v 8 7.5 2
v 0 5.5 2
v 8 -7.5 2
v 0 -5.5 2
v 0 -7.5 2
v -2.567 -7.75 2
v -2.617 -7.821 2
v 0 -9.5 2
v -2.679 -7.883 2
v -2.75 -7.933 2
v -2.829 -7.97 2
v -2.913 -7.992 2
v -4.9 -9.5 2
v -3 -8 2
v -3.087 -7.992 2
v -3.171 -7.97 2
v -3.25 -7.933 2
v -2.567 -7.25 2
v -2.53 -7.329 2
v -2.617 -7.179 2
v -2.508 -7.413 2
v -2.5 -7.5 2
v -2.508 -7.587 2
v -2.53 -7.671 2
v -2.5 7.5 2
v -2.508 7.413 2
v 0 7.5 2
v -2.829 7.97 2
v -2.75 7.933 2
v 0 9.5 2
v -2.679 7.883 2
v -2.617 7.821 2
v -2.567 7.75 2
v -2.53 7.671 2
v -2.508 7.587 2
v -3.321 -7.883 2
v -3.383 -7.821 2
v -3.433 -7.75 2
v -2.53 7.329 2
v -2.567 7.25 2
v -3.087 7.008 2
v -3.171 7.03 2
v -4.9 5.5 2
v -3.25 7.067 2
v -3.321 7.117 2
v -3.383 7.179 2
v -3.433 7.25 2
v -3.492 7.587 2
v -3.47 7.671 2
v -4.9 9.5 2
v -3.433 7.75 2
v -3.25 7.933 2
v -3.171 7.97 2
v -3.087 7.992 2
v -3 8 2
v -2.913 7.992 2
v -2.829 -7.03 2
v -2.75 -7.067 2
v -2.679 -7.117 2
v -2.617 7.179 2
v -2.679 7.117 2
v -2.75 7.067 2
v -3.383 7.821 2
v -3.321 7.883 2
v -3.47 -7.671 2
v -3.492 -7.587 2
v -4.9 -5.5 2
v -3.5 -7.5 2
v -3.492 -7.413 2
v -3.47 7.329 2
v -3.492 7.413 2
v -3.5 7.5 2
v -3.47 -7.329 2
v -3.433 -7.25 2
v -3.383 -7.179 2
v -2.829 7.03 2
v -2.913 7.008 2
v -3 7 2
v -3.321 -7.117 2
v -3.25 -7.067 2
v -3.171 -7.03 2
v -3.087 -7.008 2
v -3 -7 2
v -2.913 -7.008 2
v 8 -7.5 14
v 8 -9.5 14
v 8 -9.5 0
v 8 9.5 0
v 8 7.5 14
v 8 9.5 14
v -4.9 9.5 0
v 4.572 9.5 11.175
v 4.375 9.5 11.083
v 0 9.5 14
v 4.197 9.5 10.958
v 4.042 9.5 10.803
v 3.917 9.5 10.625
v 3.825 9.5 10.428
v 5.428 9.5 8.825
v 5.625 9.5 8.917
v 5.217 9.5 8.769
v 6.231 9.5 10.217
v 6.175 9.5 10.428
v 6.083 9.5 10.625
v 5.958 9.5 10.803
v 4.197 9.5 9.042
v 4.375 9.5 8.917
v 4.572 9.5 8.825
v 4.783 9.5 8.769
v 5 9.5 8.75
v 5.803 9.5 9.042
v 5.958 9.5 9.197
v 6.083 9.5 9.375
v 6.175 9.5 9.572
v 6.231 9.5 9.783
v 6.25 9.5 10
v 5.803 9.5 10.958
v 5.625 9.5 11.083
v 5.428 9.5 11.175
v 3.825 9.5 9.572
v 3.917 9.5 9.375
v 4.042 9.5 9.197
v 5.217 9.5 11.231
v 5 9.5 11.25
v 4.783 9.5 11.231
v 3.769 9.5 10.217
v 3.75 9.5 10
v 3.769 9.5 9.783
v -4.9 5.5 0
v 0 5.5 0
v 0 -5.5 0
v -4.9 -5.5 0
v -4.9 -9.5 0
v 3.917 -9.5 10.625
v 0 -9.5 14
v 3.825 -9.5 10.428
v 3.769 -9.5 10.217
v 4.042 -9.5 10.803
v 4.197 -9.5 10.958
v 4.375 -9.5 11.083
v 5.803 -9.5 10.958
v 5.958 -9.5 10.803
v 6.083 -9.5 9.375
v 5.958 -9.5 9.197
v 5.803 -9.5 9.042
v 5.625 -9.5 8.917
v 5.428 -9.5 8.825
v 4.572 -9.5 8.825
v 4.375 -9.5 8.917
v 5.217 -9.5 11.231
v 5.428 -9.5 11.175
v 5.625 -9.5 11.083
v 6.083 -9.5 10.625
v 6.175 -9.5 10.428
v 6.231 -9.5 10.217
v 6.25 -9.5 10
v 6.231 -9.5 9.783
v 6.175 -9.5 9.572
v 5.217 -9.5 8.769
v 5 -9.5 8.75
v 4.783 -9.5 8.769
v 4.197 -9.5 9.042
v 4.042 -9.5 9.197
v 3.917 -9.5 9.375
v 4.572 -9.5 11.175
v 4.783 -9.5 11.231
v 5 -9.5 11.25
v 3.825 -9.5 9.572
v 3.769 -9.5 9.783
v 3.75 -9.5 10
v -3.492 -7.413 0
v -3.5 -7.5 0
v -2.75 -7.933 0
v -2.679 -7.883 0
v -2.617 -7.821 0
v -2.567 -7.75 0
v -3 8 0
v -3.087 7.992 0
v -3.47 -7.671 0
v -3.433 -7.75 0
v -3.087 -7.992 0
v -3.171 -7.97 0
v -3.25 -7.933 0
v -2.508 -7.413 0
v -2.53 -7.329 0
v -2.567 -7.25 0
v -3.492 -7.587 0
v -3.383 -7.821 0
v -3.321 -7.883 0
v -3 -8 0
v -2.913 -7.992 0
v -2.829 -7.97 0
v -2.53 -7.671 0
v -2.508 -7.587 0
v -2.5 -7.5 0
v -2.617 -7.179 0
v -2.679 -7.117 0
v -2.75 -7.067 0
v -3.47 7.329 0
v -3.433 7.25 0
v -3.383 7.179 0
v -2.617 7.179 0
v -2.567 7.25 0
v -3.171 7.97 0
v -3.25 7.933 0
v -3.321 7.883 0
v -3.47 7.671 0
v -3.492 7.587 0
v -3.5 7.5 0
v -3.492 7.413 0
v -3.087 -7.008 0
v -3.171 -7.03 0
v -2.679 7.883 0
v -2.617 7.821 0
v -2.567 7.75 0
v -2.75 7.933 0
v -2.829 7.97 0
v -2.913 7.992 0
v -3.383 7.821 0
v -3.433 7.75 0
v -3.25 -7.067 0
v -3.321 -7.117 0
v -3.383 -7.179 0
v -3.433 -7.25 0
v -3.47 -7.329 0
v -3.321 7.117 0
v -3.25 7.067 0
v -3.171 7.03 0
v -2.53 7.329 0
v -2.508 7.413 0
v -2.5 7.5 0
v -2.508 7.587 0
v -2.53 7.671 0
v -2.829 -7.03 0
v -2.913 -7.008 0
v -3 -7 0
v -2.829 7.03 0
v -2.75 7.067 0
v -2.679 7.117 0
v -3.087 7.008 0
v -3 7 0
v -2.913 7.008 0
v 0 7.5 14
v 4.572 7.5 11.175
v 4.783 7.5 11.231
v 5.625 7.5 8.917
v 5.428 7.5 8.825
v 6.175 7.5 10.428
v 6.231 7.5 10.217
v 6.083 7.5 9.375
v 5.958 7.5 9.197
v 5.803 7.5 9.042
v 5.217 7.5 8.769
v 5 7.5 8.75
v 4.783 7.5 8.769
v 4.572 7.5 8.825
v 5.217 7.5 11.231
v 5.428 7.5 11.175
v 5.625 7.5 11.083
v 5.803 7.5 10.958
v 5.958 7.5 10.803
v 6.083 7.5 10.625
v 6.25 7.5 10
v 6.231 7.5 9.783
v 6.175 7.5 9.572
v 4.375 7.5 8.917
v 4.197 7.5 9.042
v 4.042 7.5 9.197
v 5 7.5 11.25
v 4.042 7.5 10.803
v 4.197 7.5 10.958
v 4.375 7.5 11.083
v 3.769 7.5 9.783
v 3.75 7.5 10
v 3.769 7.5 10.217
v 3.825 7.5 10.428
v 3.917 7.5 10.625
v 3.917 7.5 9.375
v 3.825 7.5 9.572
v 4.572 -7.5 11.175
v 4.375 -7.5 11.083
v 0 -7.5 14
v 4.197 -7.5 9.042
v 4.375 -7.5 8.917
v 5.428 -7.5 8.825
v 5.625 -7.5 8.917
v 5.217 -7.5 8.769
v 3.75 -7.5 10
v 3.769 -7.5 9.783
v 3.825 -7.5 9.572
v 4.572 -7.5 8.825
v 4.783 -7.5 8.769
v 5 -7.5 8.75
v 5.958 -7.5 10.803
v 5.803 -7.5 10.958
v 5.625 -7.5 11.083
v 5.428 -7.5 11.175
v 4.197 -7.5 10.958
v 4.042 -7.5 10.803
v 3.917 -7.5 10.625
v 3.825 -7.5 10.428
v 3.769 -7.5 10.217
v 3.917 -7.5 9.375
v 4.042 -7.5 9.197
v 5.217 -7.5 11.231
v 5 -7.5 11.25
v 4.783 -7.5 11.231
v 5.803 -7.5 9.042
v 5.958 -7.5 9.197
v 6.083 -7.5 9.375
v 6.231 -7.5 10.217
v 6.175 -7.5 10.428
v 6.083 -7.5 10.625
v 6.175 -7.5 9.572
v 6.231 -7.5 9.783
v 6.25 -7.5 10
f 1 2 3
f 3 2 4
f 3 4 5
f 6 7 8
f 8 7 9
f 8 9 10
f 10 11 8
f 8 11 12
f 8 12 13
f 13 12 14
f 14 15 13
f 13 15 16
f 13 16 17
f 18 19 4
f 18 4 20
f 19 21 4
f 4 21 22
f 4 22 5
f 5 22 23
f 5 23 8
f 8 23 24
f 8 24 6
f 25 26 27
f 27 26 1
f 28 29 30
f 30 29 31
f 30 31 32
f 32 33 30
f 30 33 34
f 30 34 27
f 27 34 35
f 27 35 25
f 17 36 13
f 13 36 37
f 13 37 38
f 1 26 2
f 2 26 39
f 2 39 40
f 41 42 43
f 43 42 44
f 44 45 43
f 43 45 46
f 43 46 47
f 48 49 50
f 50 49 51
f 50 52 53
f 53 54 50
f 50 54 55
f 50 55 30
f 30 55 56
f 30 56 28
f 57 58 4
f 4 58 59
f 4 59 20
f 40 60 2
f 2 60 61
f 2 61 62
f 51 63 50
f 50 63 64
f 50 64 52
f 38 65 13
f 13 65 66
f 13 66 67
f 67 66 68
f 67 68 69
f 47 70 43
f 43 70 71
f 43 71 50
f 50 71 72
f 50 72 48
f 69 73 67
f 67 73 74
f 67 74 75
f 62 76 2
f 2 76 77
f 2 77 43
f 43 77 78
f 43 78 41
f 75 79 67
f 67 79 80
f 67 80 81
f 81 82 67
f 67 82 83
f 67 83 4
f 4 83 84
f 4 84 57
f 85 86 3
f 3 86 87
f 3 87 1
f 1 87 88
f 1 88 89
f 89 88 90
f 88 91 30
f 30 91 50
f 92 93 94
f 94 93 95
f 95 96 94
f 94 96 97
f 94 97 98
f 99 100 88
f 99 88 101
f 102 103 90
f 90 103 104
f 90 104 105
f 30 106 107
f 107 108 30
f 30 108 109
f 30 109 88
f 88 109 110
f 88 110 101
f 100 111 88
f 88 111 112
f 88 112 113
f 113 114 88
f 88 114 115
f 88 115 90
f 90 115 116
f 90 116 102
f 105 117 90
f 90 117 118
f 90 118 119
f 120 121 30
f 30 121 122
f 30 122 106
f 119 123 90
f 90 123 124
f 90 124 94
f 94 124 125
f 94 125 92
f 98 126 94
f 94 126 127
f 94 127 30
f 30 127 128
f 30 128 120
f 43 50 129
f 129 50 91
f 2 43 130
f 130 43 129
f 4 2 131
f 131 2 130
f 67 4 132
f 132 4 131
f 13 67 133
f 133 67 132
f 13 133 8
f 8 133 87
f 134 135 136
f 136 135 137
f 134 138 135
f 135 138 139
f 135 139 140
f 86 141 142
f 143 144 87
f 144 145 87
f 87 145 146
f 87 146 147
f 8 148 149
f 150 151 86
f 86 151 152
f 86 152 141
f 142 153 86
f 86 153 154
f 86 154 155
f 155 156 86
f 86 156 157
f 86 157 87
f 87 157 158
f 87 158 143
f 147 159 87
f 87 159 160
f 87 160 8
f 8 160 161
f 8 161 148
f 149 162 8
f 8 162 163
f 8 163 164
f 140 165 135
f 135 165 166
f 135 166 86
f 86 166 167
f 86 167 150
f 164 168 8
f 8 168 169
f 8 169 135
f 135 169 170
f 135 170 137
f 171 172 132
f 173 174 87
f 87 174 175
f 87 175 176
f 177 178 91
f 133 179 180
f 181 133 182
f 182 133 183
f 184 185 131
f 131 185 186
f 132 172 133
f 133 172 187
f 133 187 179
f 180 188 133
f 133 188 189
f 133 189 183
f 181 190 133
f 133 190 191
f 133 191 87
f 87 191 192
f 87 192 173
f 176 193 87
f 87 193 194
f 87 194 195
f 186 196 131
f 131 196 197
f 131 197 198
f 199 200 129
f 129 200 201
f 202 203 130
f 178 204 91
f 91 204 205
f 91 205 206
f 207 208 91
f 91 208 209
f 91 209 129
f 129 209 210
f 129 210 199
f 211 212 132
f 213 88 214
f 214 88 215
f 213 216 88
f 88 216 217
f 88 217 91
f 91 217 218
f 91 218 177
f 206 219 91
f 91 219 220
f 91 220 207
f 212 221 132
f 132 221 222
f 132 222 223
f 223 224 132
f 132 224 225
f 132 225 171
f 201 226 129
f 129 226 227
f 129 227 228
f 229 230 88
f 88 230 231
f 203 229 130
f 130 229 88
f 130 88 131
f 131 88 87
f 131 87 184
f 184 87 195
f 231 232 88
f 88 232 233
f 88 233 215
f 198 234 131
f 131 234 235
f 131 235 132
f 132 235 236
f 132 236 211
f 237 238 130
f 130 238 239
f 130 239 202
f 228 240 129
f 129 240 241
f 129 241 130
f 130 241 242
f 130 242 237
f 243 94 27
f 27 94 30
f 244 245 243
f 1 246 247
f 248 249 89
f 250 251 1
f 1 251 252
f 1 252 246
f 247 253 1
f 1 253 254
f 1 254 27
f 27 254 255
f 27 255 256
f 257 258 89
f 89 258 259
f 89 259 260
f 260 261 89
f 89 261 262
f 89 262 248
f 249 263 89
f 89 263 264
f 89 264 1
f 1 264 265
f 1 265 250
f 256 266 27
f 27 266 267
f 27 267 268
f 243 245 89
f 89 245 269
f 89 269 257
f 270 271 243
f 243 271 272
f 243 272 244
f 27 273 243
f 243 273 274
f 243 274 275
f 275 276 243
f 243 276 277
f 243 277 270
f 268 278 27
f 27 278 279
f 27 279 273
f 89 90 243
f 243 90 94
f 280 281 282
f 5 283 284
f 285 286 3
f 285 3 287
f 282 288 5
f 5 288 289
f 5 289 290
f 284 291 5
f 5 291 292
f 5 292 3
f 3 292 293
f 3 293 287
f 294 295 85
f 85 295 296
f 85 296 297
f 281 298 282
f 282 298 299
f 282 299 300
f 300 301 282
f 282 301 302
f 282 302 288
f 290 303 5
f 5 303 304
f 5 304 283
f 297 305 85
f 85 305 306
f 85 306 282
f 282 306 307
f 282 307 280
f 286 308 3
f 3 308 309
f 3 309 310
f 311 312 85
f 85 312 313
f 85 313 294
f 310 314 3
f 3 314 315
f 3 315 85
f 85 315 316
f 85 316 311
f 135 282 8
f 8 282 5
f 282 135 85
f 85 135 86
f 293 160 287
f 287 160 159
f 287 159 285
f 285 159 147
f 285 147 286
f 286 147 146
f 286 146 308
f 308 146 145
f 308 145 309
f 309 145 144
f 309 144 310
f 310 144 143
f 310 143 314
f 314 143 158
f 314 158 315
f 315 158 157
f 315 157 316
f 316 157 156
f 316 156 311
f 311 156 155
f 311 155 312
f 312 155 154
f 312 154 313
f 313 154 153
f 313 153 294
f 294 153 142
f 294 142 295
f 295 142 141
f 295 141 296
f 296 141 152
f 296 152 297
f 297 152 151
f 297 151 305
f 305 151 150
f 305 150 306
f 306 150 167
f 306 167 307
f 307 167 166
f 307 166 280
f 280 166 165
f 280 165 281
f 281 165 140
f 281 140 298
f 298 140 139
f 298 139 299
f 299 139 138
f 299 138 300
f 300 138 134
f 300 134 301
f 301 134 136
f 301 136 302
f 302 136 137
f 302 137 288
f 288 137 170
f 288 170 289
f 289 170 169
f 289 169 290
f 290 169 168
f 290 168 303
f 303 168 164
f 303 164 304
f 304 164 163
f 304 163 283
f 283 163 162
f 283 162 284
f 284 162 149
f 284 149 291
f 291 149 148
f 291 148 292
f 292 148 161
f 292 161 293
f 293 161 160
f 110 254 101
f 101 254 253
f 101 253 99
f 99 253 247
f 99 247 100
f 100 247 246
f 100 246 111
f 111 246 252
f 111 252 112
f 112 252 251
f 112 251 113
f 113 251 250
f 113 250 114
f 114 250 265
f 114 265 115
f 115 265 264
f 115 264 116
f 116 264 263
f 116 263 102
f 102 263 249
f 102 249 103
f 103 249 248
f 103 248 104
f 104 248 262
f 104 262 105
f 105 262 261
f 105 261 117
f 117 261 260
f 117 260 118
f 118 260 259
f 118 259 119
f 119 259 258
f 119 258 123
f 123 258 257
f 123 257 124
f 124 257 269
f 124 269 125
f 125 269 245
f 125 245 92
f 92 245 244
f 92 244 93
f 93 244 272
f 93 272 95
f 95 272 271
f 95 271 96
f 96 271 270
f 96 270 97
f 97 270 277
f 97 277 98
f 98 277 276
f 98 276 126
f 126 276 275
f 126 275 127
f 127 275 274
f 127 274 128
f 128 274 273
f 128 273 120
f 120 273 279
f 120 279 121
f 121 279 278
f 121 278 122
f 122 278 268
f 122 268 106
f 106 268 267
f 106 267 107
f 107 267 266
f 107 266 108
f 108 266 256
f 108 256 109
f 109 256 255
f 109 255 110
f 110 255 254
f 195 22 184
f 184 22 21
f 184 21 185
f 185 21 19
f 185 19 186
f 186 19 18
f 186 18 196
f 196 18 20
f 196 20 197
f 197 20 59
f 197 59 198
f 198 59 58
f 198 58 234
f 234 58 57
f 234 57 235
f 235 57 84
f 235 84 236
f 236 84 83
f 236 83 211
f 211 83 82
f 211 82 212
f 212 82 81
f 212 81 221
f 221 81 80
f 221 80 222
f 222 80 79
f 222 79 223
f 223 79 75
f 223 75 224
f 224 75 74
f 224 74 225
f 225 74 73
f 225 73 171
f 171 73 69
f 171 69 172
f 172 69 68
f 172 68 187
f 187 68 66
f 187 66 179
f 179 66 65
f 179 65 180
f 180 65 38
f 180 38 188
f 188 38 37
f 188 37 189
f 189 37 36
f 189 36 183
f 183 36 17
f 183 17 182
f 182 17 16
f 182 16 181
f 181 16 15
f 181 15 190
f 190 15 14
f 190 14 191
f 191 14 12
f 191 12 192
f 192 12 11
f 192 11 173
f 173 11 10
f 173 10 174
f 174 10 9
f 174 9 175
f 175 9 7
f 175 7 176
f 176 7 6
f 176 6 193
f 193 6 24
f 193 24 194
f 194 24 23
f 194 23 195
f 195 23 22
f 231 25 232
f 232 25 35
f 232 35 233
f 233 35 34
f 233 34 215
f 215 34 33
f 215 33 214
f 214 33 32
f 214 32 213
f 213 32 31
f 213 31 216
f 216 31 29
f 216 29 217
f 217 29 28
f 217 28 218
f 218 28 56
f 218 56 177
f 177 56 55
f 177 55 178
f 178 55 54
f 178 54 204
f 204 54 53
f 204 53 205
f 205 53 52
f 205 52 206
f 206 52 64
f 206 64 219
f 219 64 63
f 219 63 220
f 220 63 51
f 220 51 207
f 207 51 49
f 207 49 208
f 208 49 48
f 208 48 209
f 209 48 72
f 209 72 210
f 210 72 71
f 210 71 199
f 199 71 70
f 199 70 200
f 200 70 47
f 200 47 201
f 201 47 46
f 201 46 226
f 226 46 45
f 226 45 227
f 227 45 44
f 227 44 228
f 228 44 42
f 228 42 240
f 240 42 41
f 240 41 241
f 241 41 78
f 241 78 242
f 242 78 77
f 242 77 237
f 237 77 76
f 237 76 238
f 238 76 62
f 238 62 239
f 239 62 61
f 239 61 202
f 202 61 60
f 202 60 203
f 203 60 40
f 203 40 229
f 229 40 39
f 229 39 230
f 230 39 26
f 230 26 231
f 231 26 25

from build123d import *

# Parameters (mm, degrees)
EXTRUDE_1_DEPTH     = 2
SKETCH_3_W          = 8
SKETCH_3_H          = 2
EXTRUDE_2_DEPTH     = 12
SKETCH_11_R         = 1.25
CUT_EXTRUDE_3_DEPTH = 25.919871589
CUT_EXTRUDE_4_REACH = 19.27
SKETCH_10_R         = 0.5


with BuildPart() as part:
    # 草图2 → 凸台-拉伸1 (new body)
    with BuildSketch(Plane.XY):
        Polygon((-4.9, -9.5), (8, -9.5), (8, 9.5), (-4.9, 9.5), (-4.9, 5.5), (0, 5.5), (0, -5.5), (-4.9, -5.5), align=None)
    extrude(amount=EXTRUDE_1_DEPTH)

    # 草图3 → 凸台-拉伸2 (add)
    with BuildSketch(Plane.XY.offset(2)):
        with Locations((4, 8.5)):
            Rectangle(SKETCH_3_W, SKETCH_3_H)
        with Locations((4, -8.5)):
            Rectangle(SKETCH_3_W, SKETCH_3_H)
    extrude(amount=EXTRUDE_2_DEPTH)

    # 草图11 → 切除-拉伸3 (cut, through all)
    with BuildSketch(Plane.XZ.offset(9.5)):
        with Locations(Location((5, 10, 0), (0, 0, 270))):
            Circle(SKETCH_11_R)
    extrude(amount=-CUT_EXTRUDE_3_DEPTH, mode=Mode.SUBTRACT)

    # 草图10 → 切除-拉伸4 (cut, up to next)
    with BuildSketch(Plane.XY.offset(2), mode=Mode.PRIVATE) as cut_extrude_4_sk1:
        with Locations((-3, 7.5)):
            Circle(SKETCH_10_R)
    cut_extrude_4_tool1 = extrude(cut_extrude_4_sk1.sketch, amount=-CUT_EXTRUDE_4_REACH, mode=Mode.PRIVATE) & part.part
    # 草图10 → 切除-拉伸4 (cut, up to next)
    with BuildSketch(Plane.XY.offset(2), mode=Mode.PRIVATE) as cut_extrude_4_sk2:
        with Locations((-3, -7.5)):
            Circle(SKETCH_10_R)
    cut_extrude_4_tool2 = extrude(cut_extrude_4_sk2.sketch, amount=-CUT_EXTRUDE_4_REACH, mode=Mode.PRIVATE) & part.part
    add(cut_extrude_4_tool1.solids().sort_by_distance((-3, 7.5, 2))[0], mode=Mode.SUBTRACT)
    add(cut_extrude_4_tool2.solids().sort_by_distance((-3, -7.5, 2))[0], mode=Mode.SUBTRACT)


solid = part.part
